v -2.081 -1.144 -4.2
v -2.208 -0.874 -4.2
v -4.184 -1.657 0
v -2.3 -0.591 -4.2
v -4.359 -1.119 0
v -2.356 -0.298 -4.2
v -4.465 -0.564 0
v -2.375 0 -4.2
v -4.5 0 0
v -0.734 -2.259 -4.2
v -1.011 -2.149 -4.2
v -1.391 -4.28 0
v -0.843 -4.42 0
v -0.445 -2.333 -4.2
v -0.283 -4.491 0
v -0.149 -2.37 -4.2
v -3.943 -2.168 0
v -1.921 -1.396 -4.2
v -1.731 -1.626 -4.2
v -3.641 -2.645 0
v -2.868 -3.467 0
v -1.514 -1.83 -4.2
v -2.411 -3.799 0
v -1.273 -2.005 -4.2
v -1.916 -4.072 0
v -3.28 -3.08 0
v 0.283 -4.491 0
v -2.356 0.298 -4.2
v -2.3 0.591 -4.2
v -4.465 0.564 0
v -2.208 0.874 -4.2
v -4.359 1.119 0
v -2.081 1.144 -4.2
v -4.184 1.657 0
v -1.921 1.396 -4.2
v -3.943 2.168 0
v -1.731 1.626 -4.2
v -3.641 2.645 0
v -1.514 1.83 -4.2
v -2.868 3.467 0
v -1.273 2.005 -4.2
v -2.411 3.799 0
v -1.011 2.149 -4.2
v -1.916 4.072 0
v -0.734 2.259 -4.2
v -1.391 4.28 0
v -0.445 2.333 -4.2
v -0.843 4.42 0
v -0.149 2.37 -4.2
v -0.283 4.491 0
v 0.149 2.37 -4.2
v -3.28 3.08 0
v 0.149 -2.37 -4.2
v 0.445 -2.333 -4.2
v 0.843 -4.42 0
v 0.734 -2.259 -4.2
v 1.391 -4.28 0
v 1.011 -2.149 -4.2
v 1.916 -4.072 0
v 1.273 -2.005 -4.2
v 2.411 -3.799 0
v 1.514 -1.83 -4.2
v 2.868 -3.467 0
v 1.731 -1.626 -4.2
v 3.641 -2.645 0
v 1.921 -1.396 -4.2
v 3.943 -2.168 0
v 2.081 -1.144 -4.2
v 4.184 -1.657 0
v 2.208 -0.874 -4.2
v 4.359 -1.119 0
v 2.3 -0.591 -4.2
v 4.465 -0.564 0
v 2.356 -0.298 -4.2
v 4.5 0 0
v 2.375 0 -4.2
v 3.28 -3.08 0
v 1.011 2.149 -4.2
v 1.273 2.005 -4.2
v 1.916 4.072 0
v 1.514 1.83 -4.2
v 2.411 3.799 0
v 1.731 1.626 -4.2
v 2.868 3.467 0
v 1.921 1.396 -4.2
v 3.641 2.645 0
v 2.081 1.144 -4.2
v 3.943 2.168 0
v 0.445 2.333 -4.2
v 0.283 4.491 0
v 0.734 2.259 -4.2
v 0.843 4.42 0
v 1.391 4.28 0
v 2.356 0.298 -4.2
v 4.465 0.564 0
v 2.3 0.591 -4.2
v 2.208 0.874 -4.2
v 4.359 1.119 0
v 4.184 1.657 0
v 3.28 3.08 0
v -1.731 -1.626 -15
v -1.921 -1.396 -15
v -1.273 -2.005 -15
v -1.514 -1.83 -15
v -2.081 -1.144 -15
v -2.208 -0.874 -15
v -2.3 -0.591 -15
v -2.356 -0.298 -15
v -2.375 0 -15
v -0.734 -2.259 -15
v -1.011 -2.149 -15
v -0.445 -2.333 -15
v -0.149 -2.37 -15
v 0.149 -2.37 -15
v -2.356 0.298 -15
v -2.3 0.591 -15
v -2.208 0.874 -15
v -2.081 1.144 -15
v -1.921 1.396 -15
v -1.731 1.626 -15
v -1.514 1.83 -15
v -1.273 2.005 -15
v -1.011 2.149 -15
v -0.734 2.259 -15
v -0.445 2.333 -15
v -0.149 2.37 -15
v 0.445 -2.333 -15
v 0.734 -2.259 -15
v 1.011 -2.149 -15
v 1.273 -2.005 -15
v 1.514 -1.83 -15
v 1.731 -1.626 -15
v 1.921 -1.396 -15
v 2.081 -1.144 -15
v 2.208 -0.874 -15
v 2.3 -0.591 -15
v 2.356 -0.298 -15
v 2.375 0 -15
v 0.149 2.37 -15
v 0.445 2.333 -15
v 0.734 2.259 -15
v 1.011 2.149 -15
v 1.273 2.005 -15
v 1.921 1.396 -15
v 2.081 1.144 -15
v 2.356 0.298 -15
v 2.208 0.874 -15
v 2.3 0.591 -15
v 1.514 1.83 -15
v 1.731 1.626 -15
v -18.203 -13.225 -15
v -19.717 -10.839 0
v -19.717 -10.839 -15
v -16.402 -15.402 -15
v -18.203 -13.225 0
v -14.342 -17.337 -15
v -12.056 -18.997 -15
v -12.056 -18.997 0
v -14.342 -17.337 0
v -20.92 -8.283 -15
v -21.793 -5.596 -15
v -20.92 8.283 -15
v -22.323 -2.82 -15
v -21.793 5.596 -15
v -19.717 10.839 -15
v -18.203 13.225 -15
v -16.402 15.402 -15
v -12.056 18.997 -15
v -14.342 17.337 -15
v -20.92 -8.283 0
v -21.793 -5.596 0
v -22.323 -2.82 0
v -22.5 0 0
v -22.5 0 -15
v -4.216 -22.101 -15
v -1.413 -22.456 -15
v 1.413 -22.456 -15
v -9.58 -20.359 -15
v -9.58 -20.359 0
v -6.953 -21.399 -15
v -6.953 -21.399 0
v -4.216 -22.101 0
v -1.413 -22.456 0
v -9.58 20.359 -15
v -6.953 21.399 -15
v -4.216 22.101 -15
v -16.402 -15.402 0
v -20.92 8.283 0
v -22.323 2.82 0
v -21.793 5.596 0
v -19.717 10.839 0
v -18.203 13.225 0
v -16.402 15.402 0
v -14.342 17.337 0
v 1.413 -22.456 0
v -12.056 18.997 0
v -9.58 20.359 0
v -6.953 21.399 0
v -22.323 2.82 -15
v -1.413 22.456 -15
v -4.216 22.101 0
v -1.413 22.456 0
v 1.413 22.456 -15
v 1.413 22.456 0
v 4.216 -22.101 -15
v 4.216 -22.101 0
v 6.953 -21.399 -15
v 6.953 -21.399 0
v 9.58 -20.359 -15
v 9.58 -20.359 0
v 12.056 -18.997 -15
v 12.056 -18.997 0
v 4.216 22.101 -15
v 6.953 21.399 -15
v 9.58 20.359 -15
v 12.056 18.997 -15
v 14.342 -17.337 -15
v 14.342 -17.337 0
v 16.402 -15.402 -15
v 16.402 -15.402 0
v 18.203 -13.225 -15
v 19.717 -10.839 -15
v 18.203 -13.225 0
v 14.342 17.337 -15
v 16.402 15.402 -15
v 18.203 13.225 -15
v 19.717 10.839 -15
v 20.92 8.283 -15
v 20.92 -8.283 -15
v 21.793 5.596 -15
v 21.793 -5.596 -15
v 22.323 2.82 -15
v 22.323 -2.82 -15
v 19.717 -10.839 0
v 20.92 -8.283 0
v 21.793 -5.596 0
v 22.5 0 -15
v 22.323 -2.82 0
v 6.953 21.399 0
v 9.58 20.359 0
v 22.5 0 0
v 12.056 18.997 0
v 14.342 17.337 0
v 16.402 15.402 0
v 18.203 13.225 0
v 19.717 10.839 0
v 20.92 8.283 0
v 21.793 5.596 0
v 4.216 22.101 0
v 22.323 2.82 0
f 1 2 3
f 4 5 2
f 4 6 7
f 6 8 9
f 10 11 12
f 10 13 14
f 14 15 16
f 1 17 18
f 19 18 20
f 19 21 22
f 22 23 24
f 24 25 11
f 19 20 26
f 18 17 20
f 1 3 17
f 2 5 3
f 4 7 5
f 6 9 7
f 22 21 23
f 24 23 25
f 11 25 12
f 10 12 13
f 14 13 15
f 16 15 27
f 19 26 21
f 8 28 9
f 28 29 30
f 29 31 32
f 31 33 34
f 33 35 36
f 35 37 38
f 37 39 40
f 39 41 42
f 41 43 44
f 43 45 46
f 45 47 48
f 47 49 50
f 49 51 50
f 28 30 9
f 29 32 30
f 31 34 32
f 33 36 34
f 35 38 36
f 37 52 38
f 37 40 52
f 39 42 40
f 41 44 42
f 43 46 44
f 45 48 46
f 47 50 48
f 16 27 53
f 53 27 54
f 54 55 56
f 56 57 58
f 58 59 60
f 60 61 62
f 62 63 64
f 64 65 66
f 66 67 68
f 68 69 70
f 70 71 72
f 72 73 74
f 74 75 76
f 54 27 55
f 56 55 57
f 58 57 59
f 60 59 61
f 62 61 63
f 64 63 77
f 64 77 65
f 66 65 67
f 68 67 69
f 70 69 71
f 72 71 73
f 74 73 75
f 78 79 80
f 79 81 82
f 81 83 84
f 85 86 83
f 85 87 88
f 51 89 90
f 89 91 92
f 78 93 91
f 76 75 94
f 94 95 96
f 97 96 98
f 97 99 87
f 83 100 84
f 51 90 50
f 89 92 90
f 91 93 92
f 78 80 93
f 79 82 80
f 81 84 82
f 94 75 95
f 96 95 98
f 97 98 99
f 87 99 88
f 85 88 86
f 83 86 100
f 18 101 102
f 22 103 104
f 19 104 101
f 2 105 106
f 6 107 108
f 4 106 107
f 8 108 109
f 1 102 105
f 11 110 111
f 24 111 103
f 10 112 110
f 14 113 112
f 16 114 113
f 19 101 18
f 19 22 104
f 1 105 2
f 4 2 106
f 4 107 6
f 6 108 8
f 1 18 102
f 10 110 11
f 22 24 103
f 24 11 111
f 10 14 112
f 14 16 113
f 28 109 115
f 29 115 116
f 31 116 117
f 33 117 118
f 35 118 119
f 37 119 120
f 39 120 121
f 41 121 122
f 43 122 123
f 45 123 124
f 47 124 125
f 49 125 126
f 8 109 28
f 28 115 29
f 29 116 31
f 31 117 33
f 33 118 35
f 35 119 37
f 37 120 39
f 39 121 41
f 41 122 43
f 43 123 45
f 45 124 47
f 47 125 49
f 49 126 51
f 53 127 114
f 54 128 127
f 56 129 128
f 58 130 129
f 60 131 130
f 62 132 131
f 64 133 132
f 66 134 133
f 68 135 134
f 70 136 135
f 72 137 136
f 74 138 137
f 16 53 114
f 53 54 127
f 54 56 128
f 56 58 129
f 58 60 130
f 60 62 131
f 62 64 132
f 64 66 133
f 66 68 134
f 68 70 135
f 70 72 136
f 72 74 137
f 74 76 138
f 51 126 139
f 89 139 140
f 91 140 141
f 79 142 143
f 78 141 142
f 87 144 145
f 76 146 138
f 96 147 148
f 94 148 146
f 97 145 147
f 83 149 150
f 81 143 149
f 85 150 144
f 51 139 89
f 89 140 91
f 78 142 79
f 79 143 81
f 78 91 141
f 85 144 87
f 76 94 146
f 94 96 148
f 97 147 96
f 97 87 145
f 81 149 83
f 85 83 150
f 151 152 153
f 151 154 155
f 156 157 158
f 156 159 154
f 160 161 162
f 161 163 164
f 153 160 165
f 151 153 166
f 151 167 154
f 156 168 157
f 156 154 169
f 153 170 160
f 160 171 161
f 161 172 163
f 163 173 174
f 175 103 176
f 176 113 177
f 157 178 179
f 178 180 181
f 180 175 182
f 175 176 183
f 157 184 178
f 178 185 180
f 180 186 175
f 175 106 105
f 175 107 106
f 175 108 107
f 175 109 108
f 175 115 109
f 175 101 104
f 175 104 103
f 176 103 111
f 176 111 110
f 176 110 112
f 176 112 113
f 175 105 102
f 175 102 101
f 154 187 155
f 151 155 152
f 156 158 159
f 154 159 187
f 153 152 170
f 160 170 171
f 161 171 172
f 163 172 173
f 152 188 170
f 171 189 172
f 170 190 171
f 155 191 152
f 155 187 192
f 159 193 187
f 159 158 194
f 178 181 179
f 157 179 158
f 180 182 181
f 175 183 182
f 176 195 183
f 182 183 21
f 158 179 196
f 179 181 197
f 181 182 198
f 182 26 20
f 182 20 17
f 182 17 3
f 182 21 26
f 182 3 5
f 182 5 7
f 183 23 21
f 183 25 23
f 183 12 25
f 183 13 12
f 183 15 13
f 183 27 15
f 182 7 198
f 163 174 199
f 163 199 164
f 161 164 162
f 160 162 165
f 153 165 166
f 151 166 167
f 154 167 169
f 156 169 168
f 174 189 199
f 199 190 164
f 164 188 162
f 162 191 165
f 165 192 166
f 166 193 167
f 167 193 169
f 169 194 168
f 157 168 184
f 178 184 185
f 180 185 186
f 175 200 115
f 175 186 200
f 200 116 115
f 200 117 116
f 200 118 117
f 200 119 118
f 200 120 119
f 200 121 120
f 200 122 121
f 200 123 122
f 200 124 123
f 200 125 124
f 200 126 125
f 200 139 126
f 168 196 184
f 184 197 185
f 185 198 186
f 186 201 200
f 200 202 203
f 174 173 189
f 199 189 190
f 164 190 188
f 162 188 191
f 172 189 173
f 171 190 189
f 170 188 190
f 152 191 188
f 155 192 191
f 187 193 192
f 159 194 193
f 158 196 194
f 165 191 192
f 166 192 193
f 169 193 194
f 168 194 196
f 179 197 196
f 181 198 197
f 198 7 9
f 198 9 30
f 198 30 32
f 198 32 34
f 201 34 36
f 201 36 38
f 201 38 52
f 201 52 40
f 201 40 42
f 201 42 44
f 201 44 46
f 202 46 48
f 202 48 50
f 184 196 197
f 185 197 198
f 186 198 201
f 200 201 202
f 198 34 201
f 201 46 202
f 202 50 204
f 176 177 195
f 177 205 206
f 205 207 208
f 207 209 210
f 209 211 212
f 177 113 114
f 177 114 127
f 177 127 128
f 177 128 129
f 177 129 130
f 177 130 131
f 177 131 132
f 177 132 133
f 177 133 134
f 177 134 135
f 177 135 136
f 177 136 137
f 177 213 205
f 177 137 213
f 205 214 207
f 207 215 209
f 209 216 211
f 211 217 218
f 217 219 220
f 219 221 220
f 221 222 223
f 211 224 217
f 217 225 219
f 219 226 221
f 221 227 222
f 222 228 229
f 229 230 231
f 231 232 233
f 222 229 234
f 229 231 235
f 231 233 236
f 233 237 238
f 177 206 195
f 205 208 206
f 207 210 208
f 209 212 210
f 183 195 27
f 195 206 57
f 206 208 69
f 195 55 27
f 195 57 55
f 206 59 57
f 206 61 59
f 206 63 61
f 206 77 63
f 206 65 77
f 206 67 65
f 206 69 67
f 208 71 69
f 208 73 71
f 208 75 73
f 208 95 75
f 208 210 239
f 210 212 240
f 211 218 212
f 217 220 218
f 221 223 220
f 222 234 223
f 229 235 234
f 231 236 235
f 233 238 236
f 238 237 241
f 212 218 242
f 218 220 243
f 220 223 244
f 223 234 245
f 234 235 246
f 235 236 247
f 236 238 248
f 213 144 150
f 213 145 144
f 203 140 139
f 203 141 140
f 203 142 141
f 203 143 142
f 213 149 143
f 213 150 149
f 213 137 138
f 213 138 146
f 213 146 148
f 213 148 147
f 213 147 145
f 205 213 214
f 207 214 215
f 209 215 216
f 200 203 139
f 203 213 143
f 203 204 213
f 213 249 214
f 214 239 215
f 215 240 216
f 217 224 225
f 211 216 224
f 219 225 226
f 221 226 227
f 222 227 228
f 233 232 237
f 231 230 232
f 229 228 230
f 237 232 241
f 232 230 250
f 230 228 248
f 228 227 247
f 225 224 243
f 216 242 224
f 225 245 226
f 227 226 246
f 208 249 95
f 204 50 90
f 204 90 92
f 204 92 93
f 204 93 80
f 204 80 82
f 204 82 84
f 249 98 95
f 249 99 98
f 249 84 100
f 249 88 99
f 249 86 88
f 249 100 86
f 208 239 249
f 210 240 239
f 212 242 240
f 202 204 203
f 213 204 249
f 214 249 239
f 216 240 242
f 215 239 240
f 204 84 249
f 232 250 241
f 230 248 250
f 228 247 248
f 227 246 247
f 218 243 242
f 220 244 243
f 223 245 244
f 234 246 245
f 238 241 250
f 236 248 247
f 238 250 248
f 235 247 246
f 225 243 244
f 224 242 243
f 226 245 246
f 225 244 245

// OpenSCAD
$fn = 50;


difference() {
	union() {
		translate(v = [0, 0, -15.0000000000]) {
			cylinder(h = 15, r = 22.5000000000);
		}
	}
	union() {
		translate(v = [0, 0, 0]) {
			rotate(a = [0, 0, 0]) {
				difference() {
					union() {
						translate(v = [0, 0, -18.0000000000]) {
							cylinder(h = 18, r = 2.2500000000);
						}
						translate(v = [0, 0, -4.2000000000]) {
							cylinder(h = 4.2000000000, r1 = 2.3750000000, r2 = 4.5000000000);
						}
						translate(v = [0, 0, -18.0000000000]) {
							cylinder(h = 18, r = 2.3750000000);
						}
						translate(v = [0, 0, -18.0000000000]) {
							cylinder(h = 18, r = 2.2500000000);
						}
					}
					union();
				}
			}
		}
	}
}
